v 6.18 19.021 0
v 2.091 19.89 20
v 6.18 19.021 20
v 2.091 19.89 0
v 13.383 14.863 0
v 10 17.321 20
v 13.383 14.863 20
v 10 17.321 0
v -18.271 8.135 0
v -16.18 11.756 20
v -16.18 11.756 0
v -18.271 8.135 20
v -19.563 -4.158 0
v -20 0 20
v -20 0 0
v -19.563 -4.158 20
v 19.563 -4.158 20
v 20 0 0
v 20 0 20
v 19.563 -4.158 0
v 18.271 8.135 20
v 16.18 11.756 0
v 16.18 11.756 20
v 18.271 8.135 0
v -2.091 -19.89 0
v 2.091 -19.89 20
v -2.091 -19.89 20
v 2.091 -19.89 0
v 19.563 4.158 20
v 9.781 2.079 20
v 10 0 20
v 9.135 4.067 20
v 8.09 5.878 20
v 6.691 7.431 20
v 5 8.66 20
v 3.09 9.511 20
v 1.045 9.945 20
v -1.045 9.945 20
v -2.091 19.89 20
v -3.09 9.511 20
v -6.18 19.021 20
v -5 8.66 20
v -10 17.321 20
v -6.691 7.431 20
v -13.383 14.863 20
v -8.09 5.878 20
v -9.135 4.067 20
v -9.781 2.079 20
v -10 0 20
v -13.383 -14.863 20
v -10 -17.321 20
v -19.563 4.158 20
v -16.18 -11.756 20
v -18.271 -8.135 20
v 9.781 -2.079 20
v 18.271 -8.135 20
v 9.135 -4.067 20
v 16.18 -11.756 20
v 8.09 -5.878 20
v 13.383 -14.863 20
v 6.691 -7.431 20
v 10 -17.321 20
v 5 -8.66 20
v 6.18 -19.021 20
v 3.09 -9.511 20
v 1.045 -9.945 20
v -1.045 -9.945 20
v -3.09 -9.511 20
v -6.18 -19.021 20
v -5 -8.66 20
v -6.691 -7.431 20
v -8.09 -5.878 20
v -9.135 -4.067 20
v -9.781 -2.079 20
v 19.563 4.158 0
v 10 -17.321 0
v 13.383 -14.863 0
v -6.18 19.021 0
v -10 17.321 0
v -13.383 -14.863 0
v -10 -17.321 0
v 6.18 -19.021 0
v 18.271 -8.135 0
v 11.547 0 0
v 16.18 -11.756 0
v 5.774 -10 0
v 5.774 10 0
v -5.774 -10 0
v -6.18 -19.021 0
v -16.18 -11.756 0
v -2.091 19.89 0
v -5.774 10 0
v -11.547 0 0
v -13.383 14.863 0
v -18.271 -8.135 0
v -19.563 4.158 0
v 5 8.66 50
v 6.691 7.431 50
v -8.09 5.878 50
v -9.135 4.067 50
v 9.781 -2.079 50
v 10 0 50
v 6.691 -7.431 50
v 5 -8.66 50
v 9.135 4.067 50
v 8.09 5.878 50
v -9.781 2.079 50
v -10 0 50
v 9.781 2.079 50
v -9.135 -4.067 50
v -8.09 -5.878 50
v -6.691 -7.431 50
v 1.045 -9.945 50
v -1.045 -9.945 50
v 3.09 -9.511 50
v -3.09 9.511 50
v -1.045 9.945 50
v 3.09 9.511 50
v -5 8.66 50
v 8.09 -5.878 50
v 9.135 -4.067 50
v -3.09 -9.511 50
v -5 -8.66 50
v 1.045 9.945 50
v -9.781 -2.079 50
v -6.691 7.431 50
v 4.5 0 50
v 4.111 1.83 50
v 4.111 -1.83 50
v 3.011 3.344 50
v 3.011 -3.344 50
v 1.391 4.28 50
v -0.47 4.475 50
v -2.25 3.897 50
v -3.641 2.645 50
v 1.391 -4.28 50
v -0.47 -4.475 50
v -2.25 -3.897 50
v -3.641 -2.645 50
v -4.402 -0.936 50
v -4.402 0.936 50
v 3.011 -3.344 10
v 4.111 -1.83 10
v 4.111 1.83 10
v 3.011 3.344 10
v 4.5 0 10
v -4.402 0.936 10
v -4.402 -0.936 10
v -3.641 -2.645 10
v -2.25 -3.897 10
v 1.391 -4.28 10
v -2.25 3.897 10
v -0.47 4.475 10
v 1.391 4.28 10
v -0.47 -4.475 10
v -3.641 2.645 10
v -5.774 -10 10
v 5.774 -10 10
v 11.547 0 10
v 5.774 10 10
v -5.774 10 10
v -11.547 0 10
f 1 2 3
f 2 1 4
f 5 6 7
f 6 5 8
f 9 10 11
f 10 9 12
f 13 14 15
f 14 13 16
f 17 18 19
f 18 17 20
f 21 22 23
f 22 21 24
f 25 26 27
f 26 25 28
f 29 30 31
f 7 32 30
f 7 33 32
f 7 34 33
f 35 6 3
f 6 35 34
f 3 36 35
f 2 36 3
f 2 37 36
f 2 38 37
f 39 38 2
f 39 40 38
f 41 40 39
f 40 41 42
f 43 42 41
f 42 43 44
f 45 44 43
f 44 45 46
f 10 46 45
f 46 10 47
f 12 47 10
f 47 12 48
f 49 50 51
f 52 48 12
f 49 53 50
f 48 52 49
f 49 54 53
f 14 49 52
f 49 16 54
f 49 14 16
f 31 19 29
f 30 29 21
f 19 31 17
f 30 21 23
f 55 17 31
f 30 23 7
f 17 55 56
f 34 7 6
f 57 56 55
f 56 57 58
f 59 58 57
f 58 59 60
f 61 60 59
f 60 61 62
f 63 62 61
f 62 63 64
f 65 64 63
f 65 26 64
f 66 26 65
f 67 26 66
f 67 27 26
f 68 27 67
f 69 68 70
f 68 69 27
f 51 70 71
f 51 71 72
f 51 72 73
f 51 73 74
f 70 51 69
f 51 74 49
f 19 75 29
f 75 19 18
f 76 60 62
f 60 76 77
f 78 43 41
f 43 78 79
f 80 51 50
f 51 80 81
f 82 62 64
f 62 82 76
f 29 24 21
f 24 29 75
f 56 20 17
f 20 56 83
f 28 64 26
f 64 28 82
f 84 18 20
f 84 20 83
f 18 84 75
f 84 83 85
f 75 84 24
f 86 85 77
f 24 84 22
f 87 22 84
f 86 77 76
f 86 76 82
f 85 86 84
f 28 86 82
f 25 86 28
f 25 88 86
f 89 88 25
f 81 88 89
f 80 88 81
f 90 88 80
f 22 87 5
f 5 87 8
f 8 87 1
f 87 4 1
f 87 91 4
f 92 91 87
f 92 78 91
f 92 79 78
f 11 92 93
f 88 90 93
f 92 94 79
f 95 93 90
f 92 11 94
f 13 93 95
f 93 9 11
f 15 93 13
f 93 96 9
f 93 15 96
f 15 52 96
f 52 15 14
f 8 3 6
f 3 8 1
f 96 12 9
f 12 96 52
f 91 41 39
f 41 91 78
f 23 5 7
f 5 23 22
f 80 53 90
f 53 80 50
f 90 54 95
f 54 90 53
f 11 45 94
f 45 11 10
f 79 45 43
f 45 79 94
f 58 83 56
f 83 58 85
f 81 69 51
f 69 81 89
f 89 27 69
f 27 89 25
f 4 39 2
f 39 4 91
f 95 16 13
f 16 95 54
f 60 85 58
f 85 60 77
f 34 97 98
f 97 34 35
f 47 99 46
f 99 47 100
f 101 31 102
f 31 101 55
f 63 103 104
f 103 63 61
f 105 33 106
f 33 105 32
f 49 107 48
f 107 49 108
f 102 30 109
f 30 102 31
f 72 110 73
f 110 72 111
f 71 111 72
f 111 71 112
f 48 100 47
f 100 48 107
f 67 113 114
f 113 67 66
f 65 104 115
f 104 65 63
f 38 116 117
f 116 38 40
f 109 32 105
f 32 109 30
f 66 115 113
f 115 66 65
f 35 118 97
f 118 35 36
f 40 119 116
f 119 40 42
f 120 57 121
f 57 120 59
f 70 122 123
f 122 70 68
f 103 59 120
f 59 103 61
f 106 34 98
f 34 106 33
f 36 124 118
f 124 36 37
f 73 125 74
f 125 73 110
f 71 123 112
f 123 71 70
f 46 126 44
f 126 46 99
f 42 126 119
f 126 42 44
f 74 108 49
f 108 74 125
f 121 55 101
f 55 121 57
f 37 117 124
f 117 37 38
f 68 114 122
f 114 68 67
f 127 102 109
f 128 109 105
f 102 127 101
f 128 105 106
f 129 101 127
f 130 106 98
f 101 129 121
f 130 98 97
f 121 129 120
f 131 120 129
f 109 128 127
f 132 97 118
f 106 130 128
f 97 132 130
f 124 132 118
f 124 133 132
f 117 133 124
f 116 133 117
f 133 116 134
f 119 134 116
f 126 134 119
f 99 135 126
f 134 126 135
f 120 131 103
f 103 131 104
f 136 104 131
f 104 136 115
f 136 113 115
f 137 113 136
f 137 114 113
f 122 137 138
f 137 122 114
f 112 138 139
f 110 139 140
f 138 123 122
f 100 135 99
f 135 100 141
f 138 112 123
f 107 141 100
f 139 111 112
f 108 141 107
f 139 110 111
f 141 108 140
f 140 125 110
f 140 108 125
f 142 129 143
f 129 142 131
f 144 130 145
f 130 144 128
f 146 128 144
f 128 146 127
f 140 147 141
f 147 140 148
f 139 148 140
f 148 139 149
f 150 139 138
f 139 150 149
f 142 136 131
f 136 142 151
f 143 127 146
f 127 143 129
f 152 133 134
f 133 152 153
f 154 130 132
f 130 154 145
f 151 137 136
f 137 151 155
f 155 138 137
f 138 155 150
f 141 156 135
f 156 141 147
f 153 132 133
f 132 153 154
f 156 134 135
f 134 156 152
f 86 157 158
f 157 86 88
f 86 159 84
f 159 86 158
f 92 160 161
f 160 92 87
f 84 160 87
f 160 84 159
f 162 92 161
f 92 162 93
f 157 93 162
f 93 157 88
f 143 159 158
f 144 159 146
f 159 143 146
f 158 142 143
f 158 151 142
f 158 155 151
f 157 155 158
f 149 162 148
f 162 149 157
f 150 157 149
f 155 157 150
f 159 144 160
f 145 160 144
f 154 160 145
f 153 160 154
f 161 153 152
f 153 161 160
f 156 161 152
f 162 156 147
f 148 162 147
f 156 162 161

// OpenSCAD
difference() {
    union() {
        cylinder(20,20,20);
        cylinder(50,10,10);
    }
    cylinder(50,4.5,4.5);
    cylinder(10, 10/cos(30), 10/cos(30), $fn=6);
}
